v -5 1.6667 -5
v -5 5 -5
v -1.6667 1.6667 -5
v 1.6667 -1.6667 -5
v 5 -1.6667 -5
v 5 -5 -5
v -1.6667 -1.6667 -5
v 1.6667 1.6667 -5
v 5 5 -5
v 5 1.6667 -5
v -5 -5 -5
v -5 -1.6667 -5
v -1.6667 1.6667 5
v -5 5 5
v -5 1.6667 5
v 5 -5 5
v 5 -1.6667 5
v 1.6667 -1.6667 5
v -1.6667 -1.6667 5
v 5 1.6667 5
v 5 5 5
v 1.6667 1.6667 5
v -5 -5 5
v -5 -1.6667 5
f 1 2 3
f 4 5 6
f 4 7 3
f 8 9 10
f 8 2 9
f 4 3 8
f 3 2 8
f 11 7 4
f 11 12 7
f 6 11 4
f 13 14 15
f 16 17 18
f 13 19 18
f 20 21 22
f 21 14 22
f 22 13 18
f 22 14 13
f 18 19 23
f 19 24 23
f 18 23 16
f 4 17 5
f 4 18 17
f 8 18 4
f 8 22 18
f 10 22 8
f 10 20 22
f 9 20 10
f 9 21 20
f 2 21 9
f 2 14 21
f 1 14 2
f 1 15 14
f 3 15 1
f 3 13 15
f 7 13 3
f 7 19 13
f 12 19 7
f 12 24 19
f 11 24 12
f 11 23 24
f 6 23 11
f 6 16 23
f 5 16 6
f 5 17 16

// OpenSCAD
// Generated by SolidPython 1.1.3 on 2025-02-21 17:16:14
$fn=50;


translate(v = [-5.0000000000, -5.0000000000, -5.0000000000]) {
	linear_extrude(height = 10) {
		polygon(points = [[0, 0], [10, 0], [10, 3.3333333333], [6.6666666667, 3.3333333333], [6.6666666667, 6.6666666667], [10, 6.6666666667], [10, 10], [0, 10], [0, 6.6666666667], [3.3333333333, 6.6666666667], [3.3333333333, 3.3333333333], [0, 3.3333333333]]);
	}
}
/***********************************************
*********      SolidPython code:      **********
************************************************
 
from solid import *
from solid.utils import *

import math
import matplotlib.pyplot as plt
import subprocess
import os
import pdb

def arc_points(radius, start_angle, end_angle, center=[0,0], num_points=50):
    angles = [start_angle + i * (end_angle - start_angle) / (num_points - 1)
              for i in range(num_points)]
    points = [
        (center[0] + radius * math.cos(math.radians(angle)),
         center[1] + radius * math.sin(math.radians(angle)))
        for angle in angles
    ]
    return points

class Hole:
    def __init__(self, radius, x, y):
        """
        Hole defined by:
        :param x: x dimension for center point of the circle as a ratio of letter height
        :param y: y dimension for center point of the circle as a ratio of letter height
        :param radius: radius of circle as a ratio of letter height
        """
        self.x = x
        self.y = y
        self.radius = radius

class Letter2D:
    def __init__(self, letter, scale):
        self.letter = letter
        self.scale = scale
        self.shape = self.generate()


    def get_letter_points(self):
        points = []
        if self.letter == "A":
            points = [(0,0), (1/2, 1), (1, 0), (5/6, 0), (2/3, 1/3), (1/3, 1/3), (1/6, 0)]
        if self.letter == "B":
            top_arc_points = arc_points(1/4, 90, -90, center=[3/4, 3/4])
            bottom_arc_points = arc_points(1/4, 90, -90, center=[3/4, 1/4])
            other_points = [(0,0),(0,1)]
            points = top_arc_points + bottom_arc_points + other_points
        if self.letter == "C":
            outer_arc_points = arc_points(1/2, 30, 330, center=[1/2,1/2])
            inner_arc_points = arc_points(1/4, 30, 330, center=[1/2,1/2])[::-1]
            points = outer_arc_points + inner_arc_points
        if self.letter == "D":
            outer_arc_points = arc_points(1/2, 90, -90, center= [1/2, 1/2])
            points = outer_arc_points + [(0,0), (0, 1)]
        if self.letter == "E":
            points = [(0,0), (1,0), (1,1/5), (1/5,1/5), (1/5,2/5), (3/4,2/5), (3/4,3/5), (1/5,3/5), (1/5,4/5), (1,4/5), (1,1), (0,1)]
        if self.letter == "F":
            points = [(0,0), (1/5,0), (1/5,2/5), (3/4,2/5), (3/4,3/5), (1/5,3/5), (1/5,4/5), (1,4/5), (1,1), (0,1)]
        if self.letter == "G":
            outer_arc_points = arc_points(1/2, 30, 360, center=[1/2,1/2])
            other_points = [(1/2, 1/2), (1/2, 1/3)]
            inner_arc_points = arc_points(1/4, 315, 30, center=[1/2,1/2])
            points = outer_arc_points + other_points + inner_arc_points
        if self.letter == "H":
            points = [(0,0), (1/3,0), (1/3,1/3), (2/3,1/3), (2/3,0), (1,0), (1,1), (2/3,1), (2/3,2/3), (1/3,2/3), (1/3,1), (0,1)]
        if self.letter == "I":
            points = [(0,0), (1,0), (1,1/3), (2/3,1/3), (2/3,2/3), (1,2/3), (1,1), (0,1), (0,2/3), (1/3,2/3), (1/3,1/3), (0,1/3)]

        scaled_points = [(p[0] * self.scale, p[1] * self.scale) for p in points]
        return scaled_points
    

    def get_letter_holes(self):
        holes = []
        if self.letter == "A": 
            holes = [Hole(1/6, 1/2, 7/12)]
        if self.letter == "B":
            holes = [Hole(1/6, 1/2, 3/4), Hole(1/6, 1/2, 1/4)]
        if self.letter == "D":
            holes = [Hole(1/2, 1/2, 1/6)]

        scaled_holes = [Hole(hole.radius*self.scale, hole.x*self.scale, hole.y*self.scale) for hole in holes]
        return scaled_holes

    
    def generate(self):
        outer_shape_points = self.get_letter_points()
        shape = polygon(points=outer_shape_points)
        holes = self.get_letter_holes()

        if holes:
            for hole in holes:
                circle_hole = circle(r=hole.radius)
                positioned_hole = translate([hole.x, hole.y])(circle_hole)
                shape = difference()(shape, positioned_hole)
        return shape
    
    def render(self):
        scad_render_to_file(self.shape, f"output/{self.name}.scad", file_header='$fn=50;')
        subprocess.run(["C:\\Program Files\\OpenSCAD\\openscad.exe", "-o", f"output\\{self.name}.stl", f"output\\{self.name}.scad"])


class TwoLetter3D:
    def __init__(self, height, letterA, letterB=None):
        self.height = height
        self.letterA = letterA
        self.letterB = letterB
    

    def generate_3d_letter(self, letter):
        letter = letter.upper()
        # TODO: add catch here for is letter is not a letter
        shape = Letter2D(letter, self.height).generate()
        shape_3d = linear_extrude(height=self.height)(shape)
        centered_shape_3d = translate([-self.height/2, -self.height/2, -self.height/2])(shape_3d)
        return centered_shape_3d


    def render(self):
        letterA3D = self.generate_3d_letter(self.letterA)

        if self.letterB:
            letterB3D = self.generate_3d_letter(self.letterB)
            letterB3D = rotate(a=90, v=[0,1,0])(letterB3D)

            combined = intersection()(letterA3D, letterB3D)
            file_name = self.letterA + self.letterB
            scad_render_to_file(combined, f"output/{file_name}.scad", file_header='$fn=50;')
            subprocess.run(["C:\\Program Files\\OpenSCAD\\openscad.exe", "-o", f"output\\{file_name}.stl", f"output\\{file_name}.scad"])
            return
        else:
            file_name = self.letterA
            scad_render_to_file(letterA3D, f"output/{file_name}.scad", file_header='$fn=50;')
            subprocess.run(["C:\\Program Files\\OpenSCAD\\openscad.exe", "-o", f"output\\{file_name}.stl", f"output\\{file_name}.scad"])
            return
                


if __name__ == "__main__":
    os.makedirs("output", exist_ok=True)
    
    letters = [chr(x) for x in range(ord('A'), ord('H') + 1)]

    # Generate all combos
    # for letter in letters:
    #     for other_letter in letters:
    #         shape = TwoLetter3D(10, letter, other_letter)
    #         shape.render()

    # Generate all letters
    # for letter in letters:
    #     shape = TwoLetter3D(10, letter, "z")
    #     shape.render()

    #Generate a letter
    shape = TwoLetter3D(10, "I")
    shape.render()
 
 
************************************************/
